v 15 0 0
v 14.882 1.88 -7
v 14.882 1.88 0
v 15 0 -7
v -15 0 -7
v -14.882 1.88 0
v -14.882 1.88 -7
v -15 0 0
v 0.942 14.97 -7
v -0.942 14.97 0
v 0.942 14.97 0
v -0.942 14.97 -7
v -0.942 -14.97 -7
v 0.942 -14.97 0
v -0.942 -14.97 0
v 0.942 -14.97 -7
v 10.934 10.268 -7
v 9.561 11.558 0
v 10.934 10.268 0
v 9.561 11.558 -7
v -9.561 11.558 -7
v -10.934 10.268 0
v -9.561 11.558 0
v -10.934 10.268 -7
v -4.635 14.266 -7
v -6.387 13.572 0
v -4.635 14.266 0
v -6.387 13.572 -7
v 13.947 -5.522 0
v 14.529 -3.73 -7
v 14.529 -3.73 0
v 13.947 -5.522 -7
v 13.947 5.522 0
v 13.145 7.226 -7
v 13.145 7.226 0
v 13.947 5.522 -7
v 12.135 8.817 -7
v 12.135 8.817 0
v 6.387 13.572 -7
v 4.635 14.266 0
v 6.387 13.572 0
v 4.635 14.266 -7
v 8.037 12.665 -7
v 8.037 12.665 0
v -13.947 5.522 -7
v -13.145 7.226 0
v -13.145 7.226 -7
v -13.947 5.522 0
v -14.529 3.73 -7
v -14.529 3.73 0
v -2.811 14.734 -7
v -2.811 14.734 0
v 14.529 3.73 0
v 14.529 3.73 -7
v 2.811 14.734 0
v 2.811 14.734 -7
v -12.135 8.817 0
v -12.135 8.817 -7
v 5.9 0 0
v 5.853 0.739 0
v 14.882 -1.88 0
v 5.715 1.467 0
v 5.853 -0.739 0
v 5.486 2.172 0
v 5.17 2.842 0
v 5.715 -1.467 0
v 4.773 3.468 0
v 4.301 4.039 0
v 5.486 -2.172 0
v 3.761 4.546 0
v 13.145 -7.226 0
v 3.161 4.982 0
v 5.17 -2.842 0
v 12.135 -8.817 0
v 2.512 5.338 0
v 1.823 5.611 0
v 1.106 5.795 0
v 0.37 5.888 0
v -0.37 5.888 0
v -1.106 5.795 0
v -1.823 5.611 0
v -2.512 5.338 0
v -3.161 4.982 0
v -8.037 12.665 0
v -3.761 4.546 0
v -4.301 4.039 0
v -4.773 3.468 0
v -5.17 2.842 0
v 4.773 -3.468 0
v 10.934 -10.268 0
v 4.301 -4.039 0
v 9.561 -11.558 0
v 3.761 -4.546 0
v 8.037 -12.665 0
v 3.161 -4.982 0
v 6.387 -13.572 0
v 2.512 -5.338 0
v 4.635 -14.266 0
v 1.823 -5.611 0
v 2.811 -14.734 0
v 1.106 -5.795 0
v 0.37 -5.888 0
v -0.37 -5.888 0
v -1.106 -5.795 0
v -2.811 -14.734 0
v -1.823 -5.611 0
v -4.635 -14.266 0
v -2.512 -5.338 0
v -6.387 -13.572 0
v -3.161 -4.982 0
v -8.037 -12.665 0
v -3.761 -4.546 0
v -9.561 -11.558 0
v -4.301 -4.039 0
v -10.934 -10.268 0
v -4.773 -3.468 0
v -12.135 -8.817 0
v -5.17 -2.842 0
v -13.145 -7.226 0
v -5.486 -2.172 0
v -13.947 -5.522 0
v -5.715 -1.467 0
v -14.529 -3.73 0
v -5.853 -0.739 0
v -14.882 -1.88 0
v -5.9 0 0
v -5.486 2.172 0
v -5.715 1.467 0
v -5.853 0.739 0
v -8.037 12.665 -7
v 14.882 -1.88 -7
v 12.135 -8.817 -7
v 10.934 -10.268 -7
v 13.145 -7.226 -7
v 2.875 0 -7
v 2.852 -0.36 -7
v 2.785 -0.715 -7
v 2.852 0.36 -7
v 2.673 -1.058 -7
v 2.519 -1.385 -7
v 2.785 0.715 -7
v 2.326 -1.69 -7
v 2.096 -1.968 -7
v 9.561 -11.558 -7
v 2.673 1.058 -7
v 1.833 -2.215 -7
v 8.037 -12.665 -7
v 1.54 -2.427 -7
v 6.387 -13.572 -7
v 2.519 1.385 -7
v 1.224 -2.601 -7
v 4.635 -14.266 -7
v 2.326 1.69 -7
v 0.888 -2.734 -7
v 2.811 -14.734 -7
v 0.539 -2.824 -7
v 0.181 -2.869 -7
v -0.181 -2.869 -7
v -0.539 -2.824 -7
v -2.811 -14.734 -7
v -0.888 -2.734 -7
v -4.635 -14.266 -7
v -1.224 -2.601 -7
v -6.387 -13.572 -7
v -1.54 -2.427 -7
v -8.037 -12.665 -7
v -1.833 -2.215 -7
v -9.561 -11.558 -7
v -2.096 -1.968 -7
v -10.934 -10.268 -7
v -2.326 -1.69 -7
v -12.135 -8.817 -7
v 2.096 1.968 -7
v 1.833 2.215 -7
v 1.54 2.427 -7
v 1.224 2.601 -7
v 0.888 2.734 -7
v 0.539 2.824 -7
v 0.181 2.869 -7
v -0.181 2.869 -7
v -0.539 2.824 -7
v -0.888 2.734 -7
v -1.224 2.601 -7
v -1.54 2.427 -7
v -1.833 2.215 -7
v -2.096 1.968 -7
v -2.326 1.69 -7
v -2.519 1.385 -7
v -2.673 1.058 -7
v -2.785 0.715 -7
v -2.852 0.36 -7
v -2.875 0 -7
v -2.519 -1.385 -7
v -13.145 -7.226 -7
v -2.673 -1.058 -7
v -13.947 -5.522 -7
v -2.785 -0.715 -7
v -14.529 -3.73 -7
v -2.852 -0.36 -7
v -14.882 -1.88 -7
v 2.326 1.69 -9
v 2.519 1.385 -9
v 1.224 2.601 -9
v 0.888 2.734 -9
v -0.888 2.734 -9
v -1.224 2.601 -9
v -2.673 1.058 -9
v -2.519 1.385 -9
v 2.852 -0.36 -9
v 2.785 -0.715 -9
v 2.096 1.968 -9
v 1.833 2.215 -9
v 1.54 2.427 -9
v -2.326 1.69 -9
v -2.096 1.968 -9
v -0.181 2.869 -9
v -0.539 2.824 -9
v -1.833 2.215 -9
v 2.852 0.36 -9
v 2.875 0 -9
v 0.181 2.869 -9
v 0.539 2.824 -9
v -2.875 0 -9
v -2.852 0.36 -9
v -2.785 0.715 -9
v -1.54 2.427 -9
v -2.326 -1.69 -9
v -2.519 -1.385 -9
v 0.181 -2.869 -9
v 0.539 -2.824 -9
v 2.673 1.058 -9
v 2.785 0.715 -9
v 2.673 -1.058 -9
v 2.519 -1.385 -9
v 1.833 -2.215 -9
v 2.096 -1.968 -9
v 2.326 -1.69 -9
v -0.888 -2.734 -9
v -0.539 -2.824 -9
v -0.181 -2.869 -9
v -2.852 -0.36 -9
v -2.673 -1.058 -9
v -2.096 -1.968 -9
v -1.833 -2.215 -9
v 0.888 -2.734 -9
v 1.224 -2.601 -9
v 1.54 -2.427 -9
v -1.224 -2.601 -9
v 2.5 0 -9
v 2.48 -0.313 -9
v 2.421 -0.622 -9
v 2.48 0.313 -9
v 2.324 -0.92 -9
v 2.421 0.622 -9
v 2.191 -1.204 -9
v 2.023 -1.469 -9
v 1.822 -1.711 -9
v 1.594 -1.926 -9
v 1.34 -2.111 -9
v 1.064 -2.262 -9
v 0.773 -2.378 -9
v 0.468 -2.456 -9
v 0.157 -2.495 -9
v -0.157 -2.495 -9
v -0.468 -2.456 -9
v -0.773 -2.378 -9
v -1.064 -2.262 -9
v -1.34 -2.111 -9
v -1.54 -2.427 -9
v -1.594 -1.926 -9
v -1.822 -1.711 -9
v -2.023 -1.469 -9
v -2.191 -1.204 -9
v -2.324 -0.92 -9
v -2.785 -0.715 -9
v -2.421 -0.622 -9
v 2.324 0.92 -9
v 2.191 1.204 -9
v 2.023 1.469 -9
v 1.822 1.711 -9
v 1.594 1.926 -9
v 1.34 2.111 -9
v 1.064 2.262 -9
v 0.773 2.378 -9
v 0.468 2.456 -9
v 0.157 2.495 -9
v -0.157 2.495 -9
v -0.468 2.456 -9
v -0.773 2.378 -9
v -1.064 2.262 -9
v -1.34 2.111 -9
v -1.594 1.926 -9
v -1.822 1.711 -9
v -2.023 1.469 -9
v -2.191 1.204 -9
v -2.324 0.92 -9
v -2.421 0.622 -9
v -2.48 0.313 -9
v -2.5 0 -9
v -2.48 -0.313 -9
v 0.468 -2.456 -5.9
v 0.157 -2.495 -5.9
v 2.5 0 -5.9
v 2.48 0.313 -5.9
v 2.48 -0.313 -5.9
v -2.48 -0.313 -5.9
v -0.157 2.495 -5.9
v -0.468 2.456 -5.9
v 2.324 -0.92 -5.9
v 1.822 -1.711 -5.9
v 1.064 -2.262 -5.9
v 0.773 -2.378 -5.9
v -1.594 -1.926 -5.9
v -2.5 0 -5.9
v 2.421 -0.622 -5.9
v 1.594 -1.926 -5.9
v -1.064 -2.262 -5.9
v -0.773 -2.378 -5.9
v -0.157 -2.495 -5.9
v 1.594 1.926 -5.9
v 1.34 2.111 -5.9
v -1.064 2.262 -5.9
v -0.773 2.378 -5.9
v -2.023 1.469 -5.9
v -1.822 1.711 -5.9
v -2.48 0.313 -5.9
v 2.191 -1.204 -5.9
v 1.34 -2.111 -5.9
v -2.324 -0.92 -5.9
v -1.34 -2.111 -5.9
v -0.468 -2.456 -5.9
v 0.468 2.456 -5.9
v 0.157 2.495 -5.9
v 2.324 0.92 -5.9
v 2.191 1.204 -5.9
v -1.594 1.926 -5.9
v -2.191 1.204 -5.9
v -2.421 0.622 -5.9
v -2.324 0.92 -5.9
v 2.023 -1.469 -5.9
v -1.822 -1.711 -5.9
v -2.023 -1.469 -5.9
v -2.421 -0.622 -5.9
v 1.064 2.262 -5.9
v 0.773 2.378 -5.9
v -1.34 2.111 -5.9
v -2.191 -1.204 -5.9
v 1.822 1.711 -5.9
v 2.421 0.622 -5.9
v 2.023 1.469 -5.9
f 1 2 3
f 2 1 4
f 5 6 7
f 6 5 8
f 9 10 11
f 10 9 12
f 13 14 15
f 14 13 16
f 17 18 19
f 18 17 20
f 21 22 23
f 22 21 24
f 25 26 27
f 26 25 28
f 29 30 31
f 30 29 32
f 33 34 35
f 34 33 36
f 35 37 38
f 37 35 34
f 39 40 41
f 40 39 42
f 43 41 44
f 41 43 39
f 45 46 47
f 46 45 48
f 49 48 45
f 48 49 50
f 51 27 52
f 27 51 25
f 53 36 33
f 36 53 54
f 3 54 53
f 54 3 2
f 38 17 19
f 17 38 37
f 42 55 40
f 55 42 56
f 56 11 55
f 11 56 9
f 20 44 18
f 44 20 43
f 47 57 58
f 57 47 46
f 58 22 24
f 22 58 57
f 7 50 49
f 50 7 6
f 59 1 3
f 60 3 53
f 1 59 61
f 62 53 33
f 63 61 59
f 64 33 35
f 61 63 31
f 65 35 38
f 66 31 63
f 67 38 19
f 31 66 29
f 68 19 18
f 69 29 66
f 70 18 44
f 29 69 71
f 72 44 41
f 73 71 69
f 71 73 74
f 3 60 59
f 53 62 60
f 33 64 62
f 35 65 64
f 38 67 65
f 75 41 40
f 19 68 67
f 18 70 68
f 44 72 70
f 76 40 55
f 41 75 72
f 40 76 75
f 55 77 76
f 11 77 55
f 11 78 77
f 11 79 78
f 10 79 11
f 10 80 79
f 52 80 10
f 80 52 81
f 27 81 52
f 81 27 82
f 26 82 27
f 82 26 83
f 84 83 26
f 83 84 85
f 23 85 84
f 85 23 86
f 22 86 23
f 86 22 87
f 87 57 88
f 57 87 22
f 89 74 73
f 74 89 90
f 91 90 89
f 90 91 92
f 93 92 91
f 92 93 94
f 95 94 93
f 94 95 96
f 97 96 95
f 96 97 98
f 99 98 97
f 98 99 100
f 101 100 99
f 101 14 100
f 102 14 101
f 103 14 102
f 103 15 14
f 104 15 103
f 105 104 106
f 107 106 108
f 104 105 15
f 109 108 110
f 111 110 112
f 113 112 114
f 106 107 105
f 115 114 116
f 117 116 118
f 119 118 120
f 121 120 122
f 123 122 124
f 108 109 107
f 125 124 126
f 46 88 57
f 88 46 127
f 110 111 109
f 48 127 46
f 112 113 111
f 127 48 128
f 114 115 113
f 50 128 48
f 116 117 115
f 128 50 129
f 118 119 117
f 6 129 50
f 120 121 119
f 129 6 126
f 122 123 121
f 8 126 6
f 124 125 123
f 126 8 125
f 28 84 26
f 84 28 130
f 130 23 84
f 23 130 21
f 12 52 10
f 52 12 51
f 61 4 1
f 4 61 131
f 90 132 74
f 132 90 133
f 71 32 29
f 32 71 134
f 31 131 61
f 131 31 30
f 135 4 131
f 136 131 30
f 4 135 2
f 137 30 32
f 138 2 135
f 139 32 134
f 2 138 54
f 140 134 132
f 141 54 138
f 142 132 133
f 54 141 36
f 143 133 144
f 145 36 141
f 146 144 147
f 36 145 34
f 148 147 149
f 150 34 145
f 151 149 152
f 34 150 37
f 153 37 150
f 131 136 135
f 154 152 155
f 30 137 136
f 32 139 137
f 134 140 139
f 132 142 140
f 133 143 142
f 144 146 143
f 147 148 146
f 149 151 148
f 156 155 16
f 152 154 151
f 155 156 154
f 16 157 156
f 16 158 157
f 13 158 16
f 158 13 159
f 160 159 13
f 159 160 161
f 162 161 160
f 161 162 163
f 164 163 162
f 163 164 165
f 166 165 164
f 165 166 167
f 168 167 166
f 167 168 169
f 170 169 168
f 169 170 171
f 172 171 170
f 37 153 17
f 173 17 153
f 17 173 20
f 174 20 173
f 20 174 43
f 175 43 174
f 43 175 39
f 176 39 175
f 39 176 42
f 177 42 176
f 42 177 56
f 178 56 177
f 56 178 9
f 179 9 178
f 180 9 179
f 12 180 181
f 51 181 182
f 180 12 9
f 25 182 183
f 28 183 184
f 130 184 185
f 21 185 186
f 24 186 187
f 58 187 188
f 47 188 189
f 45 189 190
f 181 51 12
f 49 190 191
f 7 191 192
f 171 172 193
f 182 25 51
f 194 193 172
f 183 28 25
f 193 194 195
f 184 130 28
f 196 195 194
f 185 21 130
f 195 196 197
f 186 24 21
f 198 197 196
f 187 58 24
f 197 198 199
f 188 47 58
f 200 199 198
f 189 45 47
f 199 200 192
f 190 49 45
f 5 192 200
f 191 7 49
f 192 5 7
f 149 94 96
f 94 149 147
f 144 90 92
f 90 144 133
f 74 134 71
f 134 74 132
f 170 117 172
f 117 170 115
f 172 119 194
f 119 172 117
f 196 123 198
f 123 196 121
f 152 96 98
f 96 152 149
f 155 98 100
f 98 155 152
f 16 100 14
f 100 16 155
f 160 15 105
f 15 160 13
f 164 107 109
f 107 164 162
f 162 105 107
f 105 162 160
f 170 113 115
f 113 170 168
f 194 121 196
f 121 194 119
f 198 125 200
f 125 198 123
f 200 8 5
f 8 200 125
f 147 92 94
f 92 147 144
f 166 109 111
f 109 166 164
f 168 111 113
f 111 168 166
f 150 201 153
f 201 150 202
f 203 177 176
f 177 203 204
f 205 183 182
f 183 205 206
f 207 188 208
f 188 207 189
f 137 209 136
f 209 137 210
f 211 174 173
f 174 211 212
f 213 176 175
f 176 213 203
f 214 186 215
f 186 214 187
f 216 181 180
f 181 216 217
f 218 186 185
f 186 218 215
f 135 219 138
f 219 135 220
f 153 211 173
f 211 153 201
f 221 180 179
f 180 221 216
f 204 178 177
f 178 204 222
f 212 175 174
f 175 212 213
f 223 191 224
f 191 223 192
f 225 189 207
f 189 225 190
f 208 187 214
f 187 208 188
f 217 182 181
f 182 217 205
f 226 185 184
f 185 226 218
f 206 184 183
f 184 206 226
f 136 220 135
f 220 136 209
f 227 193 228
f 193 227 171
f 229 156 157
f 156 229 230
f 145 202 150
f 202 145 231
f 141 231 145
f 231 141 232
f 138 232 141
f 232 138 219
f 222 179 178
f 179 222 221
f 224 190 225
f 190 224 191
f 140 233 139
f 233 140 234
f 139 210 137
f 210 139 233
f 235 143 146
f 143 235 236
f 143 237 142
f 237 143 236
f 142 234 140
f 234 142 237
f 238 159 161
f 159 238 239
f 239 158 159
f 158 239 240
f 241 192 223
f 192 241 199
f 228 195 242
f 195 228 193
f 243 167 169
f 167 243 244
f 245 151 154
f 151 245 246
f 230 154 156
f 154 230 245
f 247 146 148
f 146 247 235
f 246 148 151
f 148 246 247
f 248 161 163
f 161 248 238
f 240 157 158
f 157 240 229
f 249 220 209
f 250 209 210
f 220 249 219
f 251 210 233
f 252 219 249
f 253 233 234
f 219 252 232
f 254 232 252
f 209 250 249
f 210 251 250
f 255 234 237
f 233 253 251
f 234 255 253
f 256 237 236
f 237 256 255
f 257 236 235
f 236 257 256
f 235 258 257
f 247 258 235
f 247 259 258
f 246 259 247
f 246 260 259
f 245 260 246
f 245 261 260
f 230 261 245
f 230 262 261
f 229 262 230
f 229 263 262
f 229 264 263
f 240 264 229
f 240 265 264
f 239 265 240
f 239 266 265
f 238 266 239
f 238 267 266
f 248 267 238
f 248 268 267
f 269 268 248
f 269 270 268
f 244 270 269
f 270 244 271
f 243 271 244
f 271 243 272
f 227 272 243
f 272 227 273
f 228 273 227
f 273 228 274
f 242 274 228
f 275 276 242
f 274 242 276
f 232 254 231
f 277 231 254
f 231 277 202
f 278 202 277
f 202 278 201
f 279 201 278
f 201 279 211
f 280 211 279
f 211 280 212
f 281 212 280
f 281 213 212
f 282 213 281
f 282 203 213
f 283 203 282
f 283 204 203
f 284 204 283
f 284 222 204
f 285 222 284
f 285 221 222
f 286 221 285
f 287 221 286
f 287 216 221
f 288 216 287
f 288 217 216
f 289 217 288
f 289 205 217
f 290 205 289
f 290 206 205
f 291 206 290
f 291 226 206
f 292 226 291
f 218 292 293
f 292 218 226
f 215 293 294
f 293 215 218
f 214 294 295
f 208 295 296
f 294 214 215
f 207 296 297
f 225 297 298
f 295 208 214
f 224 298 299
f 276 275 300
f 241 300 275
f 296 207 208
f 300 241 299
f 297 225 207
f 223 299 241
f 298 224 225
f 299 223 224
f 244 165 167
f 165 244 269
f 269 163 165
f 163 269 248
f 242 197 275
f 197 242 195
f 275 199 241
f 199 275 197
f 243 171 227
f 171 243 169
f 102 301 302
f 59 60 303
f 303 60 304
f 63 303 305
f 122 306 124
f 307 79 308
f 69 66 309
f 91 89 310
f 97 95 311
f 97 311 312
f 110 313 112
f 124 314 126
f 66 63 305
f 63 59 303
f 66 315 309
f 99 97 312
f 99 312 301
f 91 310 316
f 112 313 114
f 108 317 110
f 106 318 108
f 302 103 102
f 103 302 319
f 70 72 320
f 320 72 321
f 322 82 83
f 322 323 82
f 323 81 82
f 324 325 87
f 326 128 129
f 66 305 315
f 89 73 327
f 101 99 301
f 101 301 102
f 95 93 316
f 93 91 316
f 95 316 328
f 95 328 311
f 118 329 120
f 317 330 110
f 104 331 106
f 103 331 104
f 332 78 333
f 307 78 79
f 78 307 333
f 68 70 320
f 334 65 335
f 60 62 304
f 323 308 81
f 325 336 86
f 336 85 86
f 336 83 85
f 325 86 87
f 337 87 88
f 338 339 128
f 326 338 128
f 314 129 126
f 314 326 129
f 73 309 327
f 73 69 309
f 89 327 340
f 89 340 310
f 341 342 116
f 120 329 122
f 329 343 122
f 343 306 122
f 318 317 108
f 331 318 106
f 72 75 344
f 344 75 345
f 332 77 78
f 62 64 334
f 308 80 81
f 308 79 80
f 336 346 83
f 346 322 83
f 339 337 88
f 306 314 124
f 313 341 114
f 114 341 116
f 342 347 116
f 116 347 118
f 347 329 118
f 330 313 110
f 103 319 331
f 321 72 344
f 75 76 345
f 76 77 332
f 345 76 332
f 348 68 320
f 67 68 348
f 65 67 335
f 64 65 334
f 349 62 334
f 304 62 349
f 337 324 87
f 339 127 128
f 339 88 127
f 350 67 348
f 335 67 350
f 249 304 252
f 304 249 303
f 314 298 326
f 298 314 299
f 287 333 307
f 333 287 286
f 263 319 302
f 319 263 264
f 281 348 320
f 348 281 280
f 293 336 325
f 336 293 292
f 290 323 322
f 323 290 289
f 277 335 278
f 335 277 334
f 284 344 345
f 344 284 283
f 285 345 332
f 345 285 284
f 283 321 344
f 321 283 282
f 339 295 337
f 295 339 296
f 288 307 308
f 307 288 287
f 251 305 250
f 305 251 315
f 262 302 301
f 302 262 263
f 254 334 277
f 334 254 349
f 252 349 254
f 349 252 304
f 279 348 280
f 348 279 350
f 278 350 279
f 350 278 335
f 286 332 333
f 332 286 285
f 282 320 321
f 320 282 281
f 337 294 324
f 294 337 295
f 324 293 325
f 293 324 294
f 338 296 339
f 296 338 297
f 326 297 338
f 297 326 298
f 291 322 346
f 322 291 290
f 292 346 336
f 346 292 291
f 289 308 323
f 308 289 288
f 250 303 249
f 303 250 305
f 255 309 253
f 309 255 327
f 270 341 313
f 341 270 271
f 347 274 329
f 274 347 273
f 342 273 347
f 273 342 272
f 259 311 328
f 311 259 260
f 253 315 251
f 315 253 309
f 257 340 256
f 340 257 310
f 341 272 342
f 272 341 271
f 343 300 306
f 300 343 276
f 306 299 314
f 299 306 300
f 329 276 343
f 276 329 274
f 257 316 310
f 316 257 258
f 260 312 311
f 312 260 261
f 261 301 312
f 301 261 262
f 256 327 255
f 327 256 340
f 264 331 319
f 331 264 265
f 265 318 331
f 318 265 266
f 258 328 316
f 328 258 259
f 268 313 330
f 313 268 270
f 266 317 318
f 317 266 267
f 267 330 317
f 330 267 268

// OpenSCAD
$fn = 50;


difference() {
	union() {
		translate(v = [0, 0, -7.0000000000]) {
			cylinder(h = 7, r = 15.0000000000);
		}
		translate(v = [0, 0, -9.0000000000]) {
			cylinder(h = 9, r = 2.8750000000);
		}
	}
	union() {
		translate(v = [0, 0, 0]) {
			rotate(a = [0, 0, 0]) {
				difference() {
					union() {
						#translate(v = [0, 0, -9.0000000000]) {
							cylinder(h = 9, r = 2.2500000000);
						}
						#translate(v = [0, 0, -5.9000000000]) {
							cylinder(h = 5.9000000000, r1 = 2.5000000000, r2 = 5.9000000000);
						}
						#translate(v = [0, 0, -9.0000000000]) {
							cylinder(h = 9, r = 2.5000000000);
						}
						#translate(v = [0, 0, -9.0000000000]) {
							cylinder(h = 9, r = 2.2500000000);
						}
					}
					union();
				}
			}
		}
	}
}
